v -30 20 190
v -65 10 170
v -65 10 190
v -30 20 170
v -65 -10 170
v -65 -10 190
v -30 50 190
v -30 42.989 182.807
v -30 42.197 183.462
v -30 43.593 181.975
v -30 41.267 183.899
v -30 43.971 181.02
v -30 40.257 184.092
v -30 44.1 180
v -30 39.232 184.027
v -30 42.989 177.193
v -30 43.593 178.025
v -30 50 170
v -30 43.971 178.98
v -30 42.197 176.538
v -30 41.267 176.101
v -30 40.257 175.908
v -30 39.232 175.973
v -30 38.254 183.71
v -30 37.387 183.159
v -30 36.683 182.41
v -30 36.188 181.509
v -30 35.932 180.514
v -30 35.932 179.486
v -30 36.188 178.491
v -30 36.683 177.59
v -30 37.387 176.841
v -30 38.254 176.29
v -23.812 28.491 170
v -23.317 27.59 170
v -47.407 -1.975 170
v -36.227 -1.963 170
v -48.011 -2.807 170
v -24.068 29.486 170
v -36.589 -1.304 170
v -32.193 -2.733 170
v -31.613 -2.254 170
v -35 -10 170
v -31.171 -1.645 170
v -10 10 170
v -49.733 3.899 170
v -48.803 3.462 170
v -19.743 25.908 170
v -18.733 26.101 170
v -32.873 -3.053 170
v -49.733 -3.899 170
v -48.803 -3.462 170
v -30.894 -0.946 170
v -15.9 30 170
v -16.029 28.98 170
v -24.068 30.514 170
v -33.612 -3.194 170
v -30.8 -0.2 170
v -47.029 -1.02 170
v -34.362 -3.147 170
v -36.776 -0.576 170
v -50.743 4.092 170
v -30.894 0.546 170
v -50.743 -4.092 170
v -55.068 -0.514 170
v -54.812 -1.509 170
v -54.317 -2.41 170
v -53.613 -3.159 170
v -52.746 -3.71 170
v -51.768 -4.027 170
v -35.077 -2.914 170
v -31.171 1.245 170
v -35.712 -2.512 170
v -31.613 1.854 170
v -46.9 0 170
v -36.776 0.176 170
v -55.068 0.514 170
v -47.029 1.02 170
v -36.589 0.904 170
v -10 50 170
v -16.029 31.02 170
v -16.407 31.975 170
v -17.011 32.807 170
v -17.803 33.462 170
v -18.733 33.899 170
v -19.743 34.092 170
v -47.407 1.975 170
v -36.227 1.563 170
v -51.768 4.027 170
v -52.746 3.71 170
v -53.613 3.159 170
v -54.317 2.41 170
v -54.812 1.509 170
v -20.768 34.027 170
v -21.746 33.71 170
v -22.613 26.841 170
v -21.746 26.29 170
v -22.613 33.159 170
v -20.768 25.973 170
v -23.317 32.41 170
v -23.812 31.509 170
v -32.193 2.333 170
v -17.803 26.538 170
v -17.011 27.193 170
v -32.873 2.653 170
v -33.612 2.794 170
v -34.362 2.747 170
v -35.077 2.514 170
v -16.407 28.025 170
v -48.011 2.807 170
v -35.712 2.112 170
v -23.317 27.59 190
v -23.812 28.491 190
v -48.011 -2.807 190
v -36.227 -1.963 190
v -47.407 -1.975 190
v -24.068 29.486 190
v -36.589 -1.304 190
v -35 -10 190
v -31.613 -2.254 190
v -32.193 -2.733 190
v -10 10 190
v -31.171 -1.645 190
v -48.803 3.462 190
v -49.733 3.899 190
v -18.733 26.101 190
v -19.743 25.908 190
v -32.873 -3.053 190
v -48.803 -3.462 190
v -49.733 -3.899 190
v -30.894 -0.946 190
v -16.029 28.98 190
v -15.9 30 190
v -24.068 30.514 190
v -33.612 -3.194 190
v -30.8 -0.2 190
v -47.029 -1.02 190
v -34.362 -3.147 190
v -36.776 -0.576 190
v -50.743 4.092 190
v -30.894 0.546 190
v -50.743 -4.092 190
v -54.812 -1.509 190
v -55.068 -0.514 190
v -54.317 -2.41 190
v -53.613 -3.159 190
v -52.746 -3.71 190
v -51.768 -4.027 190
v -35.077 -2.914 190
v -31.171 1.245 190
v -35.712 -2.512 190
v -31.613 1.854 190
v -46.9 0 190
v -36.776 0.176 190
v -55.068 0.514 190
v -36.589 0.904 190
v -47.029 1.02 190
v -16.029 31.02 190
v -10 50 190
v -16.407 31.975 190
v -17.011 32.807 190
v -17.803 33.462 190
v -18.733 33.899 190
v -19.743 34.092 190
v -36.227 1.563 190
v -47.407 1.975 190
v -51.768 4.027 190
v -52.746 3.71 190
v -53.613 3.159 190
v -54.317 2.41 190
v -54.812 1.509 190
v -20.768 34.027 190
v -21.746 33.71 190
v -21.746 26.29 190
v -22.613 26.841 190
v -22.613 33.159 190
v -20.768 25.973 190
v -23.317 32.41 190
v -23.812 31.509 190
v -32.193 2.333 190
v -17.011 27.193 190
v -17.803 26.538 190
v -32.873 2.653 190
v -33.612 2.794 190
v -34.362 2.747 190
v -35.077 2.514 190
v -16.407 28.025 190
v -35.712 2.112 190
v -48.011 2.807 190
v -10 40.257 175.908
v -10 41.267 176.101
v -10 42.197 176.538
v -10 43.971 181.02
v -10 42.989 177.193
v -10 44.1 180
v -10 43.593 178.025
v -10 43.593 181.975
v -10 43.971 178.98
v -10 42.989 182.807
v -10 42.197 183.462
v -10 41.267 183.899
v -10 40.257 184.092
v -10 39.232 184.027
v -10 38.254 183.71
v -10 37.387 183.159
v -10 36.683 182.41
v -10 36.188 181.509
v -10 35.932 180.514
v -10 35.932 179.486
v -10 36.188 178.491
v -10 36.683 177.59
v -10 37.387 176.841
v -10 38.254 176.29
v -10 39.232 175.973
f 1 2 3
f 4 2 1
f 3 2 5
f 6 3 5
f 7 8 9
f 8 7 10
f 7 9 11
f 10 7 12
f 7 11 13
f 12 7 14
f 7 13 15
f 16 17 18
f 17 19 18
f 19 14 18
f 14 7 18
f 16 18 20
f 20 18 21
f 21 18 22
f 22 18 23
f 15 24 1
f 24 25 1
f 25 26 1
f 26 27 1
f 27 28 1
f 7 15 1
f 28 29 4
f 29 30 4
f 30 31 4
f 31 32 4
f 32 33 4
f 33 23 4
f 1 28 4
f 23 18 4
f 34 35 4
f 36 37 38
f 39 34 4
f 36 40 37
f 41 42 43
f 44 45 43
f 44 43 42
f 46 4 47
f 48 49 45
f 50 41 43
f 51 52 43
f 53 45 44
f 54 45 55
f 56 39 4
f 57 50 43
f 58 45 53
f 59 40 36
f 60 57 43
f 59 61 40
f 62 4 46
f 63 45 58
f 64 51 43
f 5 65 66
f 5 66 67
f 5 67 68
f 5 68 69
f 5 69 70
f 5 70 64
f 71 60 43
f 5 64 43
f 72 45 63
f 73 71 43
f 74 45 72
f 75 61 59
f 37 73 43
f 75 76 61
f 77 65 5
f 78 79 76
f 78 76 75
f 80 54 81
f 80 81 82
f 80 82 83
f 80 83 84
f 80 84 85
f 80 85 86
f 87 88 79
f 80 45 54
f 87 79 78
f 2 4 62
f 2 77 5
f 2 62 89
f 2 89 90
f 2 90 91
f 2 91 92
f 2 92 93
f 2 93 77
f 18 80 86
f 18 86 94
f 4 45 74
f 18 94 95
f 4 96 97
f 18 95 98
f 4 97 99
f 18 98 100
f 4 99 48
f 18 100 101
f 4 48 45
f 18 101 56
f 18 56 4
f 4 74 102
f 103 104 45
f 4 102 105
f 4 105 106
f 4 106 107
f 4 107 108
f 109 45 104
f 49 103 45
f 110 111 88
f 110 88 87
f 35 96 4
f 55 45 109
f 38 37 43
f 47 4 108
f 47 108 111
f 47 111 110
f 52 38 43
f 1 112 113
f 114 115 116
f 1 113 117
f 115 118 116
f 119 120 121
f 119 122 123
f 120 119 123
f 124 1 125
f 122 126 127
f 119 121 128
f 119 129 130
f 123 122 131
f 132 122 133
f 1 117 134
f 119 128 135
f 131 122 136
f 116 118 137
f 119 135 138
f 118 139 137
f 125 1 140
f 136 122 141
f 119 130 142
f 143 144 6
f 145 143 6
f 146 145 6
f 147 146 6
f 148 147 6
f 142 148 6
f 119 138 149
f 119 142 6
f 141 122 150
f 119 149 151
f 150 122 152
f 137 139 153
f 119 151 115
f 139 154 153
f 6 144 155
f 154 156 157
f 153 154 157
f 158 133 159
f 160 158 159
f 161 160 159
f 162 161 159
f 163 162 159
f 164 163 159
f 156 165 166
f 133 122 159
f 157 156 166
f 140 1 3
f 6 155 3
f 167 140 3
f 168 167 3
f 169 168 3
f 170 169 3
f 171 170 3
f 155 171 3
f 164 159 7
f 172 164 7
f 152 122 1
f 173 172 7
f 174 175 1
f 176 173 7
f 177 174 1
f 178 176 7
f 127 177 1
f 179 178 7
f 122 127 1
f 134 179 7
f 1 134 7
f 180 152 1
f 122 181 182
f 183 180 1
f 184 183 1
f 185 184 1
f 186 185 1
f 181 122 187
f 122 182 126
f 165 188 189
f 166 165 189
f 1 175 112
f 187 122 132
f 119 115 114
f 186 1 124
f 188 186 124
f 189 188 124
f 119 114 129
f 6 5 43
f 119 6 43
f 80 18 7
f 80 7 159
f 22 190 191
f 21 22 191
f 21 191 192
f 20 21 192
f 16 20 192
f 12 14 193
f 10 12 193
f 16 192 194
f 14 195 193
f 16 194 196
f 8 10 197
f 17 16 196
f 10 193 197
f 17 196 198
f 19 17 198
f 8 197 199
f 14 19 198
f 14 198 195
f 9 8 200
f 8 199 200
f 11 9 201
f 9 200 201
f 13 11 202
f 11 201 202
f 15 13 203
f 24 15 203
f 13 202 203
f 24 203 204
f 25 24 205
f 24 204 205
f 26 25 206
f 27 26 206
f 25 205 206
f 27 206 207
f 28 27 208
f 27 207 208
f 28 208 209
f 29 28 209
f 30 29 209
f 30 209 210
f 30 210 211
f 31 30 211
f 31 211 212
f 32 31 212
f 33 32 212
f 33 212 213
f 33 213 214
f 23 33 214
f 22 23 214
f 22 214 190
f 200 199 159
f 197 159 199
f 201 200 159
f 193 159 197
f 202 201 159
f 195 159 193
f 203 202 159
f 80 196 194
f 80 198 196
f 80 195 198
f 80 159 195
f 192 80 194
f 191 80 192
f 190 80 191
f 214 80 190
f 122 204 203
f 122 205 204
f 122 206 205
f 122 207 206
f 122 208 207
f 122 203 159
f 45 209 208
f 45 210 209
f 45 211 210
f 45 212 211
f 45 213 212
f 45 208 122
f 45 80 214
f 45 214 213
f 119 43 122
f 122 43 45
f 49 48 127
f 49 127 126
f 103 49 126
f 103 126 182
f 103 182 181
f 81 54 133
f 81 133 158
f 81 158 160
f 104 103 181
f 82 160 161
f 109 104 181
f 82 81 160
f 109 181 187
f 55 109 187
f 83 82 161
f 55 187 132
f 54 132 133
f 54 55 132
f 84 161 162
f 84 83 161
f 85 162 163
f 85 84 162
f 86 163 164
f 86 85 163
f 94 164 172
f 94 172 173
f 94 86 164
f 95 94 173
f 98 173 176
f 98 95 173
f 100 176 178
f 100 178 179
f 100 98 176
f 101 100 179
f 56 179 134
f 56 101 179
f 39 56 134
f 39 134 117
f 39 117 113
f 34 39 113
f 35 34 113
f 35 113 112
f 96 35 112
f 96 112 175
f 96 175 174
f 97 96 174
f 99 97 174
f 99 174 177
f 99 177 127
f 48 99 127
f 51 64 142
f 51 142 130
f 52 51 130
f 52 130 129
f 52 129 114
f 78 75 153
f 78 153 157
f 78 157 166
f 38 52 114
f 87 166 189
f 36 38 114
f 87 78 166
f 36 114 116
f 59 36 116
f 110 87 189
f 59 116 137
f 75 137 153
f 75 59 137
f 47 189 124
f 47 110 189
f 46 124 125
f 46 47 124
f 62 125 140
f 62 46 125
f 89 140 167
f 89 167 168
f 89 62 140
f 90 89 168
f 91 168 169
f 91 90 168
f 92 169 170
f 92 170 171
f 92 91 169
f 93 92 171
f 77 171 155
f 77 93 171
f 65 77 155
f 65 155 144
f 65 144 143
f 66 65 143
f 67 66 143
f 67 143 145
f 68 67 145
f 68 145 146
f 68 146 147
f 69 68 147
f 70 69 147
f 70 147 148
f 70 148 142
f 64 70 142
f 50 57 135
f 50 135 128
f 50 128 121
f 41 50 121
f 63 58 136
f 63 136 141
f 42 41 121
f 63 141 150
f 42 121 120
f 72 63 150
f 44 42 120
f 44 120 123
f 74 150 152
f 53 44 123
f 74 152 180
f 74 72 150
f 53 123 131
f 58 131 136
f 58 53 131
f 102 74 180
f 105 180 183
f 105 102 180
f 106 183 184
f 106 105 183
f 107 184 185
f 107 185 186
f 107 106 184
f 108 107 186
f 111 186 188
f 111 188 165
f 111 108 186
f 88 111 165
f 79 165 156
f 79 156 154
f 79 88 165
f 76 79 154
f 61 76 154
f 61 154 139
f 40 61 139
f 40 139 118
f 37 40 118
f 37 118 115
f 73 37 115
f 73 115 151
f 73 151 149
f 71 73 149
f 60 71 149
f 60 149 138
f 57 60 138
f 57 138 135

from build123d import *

# Parameters (mm, degrees)
SKETCH_R     = 4.1
SKETCH_R_2   = 3
PAD_DEPTH    = 20
SKETCH001_R  = 4.1
POCKET_DEPTH = 55.001


with BuildPart() as part:
    # Sketch → Pad (new body)
    with BuildSketch(Plane.XY.offset(170)):
        Polygon((-30, 50), (-10, 50), (-10, 10), (-35, -10), (-65, -10), (-65, 10), (-30, 20), align=None)
        with Locations((-51, 0)):
            Circle(SKETCH_R, mode=Mode.SUBTRACT)
        with Locations((-33.8, -0.2)):
            Circle(SKETCH_R_2, mode=Mode.SUBTRACT)
        with Locations((-20, 30)):
            Circle(SKETCH_R, mode=Mode.SUBTRACT)
    extrude(amount=PAD_DEPTH)

    # Sketch001 → Pocket (cut, through all)
    with BuildSketch(Plane(origin=(-10, 0, 170), x_dir=(0, 1, 0), z_dir=(1, 0, 0))):
        with Locations((40, 10)):
            Circle(SKETCH001_R)
    extrude(amount=-POCKET_DEPTH, mode=Mode.SUBTRACT)


solid = part.part
